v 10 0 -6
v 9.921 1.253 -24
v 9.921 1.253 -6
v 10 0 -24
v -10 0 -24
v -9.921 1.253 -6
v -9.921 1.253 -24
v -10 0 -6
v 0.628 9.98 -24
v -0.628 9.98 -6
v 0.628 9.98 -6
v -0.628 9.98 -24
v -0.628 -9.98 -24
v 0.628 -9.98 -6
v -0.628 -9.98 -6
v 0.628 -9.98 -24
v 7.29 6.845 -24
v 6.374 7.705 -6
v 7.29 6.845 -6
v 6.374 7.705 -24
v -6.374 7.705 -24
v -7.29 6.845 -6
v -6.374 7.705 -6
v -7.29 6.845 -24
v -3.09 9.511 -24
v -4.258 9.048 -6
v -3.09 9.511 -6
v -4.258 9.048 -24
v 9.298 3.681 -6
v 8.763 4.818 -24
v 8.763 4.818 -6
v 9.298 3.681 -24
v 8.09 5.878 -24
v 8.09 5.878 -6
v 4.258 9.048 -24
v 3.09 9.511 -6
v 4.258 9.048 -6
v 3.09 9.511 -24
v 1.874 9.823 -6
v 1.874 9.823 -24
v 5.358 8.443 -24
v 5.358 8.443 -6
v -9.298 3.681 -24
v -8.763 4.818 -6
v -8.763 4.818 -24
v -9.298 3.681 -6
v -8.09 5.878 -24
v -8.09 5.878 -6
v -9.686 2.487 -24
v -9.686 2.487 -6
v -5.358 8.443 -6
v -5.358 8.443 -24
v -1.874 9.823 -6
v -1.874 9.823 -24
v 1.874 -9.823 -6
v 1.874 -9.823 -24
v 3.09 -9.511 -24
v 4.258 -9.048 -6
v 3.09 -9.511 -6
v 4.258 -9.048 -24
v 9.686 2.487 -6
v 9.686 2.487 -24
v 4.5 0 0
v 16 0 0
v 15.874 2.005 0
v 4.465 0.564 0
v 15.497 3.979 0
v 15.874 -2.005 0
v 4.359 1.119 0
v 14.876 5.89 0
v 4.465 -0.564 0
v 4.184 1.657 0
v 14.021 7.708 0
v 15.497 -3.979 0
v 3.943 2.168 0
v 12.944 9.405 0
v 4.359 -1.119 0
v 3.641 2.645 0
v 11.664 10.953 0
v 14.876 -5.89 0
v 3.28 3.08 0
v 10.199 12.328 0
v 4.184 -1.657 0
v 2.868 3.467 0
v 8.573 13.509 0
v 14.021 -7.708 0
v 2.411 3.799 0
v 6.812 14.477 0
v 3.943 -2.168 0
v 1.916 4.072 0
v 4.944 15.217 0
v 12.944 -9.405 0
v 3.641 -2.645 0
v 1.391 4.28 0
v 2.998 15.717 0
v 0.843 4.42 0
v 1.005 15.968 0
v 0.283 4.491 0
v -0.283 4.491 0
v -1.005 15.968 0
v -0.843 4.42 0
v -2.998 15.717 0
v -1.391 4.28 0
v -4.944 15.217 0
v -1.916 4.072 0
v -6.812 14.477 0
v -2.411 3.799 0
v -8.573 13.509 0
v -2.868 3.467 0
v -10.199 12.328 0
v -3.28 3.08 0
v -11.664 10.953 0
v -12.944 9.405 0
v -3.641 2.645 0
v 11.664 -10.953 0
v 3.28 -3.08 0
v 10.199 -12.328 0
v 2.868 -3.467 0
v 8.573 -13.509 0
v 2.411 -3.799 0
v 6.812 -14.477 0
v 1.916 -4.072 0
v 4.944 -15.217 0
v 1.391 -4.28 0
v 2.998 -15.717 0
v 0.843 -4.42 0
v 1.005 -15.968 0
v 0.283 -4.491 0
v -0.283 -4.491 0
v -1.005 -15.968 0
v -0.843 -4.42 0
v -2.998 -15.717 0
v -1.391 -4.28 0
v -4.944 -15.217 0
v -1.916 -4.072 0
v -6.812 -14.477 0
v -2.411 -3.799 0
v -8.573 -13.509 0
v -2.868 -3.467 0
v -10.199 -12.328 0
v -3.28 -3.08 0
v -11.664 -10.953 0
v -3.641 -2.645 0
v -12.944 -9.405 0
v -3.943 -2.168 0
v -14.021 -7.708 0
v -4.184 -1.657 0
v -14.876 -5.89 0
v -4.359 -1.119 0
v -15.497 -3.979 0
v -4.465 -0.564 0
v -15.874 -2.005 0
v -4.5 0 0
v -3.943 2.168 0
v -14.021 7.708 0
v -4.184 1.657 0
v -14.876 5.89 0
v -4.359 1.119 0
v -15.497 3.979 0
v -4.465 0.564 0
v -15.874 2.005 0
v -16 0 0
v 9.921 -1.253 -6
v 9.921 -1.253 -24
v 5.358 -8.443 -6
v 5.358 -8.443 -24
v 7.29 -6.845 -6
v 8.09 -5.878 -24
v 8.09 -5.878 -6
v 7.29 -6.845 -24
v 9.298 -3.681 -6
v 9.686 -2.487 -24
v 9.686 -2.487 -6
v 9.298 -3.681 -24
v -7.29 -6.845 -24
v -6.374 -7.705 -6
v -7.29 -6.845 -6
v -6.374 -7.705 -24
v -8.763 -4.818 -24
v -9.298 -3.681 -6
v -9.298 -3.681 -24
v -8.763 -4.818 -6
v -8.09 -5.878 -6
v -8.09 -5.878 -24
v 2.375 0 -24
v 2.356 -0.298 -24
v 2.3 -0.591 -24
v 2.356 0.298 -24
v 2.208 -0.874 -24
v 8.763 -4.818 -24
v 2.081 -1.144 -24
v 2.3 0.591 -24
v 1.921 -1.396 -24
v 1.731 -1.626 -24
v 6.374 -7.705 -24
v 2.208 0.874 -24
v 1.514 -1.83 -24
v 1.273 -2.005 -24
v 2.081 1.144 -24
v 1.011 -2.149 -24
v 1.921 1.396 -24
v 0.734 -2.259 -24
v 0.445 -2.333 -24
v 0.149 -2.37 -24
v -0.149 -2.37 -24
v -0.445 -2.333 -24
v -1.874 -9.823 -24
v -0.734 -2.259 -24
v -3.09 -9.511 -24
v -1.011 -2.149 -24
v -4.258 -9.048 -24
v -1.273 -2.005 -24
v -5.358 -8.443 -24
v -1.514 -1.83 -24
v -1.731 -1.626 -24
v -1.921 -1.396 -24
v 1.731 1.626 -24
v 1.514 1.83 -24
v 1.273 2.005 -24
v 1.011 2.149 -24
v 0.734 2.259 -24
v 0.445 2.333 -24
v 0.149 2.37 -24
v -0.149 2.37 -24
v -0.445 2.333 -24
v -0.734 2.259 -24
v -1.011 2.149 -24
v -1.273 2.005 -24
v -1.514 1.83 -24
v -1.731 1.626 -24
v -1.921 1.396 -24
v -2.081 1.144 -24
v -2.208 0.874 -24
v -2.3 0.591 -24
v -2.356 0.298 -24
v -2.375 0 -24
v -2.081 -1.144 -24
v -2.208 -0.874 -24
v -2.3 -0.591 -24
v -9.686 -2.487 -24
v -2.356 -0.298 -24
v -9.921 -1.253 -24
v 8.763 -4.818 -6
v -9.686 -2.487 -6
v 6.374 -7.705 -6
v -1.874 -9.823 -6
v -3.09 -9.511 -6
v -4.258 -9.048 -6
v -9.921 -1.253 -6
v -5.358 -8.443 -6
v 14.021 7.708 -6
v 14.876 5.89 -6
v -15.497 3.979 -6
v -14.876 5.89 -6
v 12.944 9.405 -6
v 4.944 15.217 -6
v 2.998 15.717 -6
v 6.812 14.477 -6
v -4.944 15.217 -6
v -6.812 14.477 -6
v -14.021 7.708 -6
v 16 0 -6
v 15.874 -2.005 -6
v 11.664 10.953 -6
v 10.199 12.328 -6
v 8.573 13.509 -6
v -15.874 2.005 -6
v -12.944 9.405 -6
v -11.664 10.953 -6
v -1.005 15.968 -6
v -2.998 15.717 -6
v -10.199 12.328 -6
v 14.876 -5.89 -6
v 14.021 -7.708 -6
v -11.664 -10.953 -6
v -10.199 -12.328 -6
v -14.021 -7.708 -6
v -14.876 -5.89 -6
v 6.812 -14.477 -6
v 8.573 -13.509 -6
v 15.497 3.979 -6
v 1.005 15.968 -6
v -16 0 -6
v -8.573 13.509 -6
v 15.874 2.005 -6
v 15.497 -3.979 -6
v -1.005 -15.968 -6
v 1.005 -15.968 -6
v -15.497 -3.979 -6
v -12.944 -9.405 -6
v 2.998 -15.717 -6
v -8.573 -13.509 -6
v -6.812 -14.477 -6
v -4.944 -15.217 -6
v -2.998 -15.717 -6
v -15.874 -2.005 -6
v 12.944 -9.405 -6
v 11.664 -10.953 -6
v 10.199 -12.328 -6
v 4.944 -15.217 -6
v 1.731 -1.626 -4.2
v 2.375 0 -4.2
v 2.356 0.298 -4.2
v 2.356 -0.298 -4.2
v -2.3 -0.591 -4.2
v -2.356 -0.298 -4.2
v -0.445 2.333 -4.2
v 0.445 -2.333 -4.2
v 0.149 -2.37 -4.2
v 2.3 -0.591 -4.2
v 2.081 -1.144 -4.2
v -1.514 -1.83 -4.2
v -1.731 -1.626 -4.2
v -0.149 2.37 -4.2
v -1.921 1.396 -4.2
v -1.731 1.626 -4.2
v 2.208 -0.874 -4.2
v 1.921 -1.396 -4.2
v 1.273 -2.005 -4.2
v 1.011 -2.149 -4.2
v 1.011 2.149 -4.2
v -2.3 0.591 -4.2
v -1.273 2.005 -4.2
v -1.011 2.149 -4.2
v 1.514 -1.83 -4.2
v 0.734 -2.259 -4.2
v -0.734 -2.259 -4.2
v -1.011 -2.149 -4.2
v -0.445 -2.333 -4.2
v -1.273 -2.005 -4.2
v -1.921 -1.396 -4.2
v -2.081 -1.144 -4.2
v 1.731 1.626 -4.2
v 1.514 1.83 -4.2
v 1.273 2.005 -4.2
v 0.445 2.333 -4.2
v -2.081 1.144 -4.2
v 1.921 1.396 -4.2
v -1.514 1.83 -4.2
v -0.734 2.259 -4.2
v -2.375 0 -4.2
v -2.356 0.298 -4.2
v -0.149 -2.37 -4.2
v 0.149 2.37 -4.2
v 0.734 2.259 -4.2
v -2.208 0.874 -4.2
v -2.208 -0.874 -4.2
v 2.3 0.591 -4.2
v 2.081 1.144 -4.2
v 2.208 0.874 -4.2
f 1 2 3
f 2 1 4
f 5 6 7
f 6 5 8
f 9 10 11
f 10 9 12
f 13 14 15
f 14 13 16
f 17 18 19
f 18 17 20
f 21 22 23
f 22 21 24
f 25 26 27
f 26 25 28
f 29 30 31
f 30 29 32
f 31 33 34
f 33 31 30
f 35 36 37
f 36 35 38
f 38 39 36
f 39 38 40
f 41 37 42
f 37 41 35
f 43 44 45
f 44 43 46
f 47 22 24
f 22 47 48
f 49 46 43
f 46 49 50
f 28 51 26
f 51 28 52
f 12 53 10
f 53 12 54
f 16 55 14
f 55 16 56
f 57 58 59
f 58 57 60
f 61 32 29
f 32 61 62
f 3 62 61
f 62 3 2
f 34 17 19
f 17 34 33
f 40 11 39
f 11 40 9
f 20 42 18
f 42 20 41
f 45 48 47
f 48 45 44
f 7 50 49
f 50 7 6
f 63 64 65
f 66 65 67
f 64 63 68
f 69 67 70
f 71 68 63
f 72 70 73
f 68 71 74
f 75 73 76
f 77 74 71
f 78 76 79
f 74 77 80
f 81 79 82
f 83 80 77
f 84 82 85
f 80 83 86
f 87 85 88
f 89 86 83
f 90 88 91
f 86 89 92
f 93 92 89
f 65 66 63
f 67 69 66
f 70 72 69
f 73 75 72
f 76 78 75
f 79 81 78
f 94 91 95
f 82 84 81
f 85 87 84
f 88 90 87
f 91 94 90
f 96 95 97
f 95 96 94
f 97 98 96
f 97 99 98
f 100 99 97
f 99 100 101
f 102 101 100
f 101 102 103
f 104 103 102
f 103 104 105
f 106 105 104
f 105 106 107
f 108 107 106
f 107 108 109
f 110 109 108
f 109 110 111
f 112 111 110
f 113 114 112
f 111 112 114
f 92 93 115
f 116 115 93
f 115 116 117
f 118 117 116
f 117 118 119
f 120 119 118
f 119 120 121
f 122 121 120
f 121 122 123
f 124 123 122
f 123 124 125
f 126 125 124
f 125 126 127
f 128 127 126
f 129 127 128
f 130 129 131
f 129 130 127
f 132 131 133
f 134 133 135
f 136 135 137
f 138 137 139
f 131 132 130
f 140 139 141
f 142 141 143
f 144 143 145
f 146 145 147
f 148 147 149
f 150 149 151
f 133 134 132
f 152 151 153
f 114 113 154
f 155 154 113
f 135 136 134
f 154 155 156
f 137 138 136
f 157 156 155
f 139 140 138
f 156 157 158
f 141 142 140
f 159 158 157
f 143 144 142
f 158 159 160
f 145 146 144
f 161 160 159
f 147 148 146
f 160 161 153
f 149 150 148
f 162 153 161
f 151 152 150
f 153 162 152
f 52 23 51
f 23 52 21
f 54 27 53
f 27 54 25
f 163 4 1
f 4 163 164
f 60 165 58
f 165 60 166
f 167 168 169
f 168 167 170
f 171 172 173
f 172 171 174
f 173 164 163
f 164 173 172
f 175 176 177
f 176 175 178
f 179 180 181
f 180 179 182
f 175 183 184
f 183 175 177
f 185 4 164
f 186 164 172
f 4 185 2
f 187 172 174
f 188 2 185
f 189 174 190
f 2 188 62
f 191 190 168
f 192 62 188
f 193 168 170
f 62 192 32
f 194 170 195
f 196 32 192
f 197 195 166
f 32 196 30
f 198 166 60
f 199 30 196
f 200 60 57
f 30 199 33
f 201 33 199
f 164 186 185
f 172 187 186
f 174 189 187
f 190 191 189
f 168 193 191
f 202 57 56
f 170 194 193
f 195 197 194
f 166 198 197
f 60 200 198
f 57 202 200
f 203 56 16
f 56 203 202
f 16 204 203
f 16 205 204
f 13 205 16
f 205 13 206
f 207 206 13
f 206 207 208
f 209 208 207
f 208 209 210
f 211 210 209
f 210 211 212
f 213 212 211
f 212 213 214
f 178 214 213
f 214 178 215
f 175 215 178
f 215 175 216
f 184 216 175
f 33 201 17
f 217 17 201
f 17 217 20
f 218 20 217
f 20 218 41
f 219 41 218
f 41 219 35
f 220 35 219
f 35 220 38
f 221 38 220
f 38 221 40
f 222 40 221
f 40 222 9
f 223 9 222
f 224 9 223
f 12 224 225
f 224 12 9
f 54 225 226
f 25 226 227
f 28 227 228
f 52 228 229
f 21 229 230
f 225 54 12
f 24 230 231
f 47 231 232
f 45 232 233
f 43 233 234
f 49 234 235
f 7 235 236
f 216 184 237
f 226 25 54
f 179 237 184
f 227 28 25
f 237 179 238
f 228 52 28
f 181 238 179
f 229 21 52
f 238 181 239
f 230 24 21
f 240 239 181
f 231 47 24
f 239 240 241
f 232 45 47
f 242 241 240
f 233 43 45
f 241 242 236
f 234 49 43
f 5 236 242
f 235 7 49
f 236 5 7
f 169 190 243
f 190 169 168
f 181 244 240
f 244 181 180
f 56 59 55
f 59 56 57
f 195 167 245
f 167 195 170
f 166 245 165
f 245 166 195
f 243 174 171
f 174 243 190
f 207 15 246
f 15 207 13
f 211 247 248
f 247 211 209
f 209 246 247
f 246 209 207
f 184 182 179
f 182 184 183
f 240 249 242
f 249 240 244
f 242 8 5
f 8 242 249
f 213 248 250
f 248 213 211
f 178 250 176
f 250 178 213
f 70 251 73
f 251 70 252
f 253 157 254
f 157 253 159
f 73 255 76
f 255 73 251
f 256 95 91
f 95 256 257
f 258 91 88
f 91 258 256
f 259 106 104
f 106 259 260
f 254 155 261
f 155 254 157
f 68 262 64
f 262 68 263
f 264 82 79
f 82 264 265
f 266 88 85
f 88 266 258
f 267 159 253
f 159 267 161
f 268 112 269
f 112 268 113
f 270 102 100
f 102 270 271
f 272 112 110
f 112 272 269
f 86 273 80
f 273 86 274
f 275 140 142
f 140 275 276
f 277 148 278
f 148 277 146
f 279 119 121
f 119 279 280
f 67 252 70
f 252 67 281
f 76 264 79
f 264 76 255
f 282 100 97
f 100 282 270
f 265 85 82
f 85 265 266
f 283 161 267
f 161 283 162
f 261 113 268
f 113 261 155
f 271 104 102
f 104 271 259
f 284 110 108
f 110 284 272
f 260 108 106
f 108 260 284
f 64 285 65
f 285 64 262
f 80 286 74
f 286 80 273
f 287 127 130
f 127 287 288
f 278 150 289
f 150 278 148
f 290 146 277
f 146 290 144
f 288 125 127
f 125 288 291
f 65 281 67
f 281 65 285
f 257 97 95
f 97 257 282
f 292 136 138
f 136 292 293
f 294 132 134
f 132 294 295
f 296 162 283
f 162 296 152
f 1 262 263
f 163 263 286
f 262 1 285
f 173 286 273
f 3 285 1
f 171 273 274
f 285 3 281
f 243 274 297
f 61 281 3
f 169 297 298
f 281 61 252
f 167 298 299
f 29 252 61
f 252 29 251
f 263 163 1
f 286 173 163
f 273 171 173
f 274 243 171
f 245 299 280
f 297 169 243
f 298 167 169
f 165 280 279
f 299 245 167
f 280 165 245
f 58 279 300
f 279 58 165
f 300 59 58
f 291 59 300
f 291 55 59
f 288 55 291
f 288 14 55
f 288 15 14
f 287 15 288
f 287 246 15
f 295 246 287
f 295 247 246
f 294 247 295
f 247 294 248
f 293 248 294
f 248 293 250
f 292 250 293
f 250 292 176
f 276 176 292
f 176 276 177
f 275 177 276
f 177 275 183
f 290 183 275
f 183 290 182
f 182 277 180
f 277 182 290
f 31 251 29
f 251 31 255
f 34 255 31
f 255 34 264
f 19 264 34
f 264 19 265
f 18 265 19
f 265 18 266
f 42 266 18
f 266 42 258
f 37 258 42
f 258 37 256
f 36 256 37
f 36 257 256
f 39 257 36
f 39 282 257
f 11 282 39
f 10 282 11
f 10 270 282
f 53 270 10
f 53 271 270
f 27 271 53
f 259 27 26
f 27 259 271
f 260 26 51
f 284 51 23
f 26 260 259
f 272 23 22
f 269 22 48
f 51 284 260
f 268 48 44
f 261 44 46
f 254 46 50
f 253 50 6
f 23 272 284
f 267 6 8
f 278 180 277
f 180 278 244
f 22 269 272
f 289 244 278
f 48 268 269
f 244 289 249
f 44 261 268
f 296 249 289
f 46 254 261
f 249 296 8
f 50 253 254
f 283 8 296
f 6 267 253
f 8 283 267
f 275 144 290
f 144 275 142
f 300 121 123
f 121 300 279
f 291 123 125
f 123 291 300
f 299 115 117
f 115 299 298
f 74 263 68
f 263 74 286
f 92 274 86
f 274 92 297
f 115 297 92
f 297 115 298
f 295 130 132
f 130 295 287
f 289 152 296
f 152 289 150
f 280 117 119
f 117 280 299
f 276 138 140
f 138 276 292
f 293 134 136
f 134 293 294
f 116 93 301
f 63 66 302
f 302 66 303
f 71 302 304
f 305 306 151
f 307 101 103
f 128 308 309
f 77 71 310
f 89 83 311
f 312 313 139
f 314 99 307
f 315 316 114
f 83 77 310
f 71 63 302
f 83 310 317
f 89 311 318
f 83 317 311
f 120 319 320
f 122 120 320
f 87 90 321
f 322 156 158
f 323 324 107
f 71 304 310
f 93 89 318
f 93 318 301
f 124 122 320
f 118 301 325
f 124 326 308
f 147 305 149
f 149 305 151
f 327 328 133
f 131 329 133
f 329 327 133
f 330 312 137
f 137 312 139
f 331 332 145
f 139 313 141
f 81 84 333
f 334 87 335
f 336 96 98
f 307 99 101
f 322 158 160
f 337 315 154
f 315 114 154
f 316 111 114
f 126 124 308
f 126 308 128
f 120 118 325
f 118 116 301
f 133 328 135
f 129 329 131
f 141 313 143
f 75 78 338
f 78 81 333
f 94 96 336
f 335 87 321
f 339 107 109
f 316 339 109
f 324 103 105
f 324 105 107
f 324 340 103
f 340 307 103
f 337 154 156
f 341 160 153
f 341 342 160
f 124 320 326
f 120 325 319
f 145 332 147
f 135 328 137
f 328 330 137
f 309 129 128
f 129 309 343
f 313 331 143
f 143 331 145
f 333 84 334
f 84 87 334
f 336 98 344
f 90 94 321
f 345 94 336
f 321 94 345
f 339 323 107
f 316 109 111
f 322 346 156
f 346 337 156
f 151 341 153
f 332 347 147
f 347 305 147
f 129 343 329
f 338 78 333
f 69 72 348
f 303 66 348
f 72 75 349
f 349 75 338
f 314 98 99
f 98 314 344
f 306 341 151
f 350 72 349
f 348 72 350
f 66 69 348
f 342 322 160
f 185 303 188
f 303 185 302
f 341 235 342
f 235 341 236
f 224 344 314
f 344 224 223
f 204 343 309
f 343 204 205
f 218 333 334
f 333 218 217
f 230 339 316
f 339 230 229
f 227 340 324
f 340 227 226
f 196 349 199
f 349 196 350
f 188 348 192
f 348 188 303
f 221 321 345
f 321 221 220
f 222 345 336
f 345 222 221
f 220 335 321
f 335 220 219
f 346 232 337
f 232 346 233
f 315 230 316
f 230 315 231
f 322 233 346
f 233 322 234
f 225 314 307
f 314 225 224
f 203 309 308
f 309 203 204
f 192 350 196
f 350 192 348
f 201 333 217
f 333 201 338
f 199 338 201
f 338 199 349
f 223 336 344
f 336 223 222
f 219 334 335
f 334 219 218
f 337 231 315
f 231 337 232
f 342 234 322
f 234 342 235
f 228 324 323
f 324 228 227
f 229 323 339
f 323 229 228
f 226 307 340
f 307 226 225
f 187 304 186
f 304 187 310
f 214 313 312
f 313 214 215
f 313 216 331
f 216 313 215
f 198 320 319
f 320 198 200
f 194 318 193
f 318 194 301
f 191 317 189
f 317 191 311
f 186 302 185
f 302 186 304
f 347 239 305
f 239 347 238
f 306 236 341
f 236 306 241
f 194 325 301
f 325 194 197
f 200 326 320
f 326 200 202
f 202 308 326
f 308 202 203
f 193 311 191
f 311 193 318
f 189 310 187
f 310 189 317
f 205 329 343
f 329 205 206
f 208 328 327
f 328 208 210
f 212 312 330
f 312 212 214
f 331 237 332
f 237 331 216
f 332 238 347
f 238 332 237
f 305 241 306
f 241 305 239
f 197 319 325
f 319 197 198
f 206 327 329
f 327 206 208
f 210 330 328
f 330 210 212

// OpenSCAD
$fn = 50;


difference() {
	union() {
		translate(v = [0, 0, -24.0000000000]) {
			cylinder(h = 24, r = 10.0000000000);
		}
		translate(v = [0, 0, -6.0000000000]) {
			cylinder(h = 6, r = 16.0000000000);
		}
	}
	union() {
		translate(v = [0, 0, 0]) {
			rotate(a = [0, 0, 0]) {
				difference() {
					union() {
						#translate(v = [0, 0, -24.0000000000]) {
							cylinder(h = 24, r = 2.2500000000);
						}
						#translate(v = [0, 0, -4.2000000000]) {
							cylinder(h = 4.2000000000, r1 = 2.3750000000, r2 = 4.5000000000);
						}
						#translate(v = [0, 0, -24.0000000000]) {
							cylinder(h = 24, r = 2.3750000000);
						}
						#translate(v = [0, 0, -24.0000000000]) {
							cylinder(h = 24, r = 2.2500000000);
						}
					}
					union();
				}
			}
		}
	}
}
